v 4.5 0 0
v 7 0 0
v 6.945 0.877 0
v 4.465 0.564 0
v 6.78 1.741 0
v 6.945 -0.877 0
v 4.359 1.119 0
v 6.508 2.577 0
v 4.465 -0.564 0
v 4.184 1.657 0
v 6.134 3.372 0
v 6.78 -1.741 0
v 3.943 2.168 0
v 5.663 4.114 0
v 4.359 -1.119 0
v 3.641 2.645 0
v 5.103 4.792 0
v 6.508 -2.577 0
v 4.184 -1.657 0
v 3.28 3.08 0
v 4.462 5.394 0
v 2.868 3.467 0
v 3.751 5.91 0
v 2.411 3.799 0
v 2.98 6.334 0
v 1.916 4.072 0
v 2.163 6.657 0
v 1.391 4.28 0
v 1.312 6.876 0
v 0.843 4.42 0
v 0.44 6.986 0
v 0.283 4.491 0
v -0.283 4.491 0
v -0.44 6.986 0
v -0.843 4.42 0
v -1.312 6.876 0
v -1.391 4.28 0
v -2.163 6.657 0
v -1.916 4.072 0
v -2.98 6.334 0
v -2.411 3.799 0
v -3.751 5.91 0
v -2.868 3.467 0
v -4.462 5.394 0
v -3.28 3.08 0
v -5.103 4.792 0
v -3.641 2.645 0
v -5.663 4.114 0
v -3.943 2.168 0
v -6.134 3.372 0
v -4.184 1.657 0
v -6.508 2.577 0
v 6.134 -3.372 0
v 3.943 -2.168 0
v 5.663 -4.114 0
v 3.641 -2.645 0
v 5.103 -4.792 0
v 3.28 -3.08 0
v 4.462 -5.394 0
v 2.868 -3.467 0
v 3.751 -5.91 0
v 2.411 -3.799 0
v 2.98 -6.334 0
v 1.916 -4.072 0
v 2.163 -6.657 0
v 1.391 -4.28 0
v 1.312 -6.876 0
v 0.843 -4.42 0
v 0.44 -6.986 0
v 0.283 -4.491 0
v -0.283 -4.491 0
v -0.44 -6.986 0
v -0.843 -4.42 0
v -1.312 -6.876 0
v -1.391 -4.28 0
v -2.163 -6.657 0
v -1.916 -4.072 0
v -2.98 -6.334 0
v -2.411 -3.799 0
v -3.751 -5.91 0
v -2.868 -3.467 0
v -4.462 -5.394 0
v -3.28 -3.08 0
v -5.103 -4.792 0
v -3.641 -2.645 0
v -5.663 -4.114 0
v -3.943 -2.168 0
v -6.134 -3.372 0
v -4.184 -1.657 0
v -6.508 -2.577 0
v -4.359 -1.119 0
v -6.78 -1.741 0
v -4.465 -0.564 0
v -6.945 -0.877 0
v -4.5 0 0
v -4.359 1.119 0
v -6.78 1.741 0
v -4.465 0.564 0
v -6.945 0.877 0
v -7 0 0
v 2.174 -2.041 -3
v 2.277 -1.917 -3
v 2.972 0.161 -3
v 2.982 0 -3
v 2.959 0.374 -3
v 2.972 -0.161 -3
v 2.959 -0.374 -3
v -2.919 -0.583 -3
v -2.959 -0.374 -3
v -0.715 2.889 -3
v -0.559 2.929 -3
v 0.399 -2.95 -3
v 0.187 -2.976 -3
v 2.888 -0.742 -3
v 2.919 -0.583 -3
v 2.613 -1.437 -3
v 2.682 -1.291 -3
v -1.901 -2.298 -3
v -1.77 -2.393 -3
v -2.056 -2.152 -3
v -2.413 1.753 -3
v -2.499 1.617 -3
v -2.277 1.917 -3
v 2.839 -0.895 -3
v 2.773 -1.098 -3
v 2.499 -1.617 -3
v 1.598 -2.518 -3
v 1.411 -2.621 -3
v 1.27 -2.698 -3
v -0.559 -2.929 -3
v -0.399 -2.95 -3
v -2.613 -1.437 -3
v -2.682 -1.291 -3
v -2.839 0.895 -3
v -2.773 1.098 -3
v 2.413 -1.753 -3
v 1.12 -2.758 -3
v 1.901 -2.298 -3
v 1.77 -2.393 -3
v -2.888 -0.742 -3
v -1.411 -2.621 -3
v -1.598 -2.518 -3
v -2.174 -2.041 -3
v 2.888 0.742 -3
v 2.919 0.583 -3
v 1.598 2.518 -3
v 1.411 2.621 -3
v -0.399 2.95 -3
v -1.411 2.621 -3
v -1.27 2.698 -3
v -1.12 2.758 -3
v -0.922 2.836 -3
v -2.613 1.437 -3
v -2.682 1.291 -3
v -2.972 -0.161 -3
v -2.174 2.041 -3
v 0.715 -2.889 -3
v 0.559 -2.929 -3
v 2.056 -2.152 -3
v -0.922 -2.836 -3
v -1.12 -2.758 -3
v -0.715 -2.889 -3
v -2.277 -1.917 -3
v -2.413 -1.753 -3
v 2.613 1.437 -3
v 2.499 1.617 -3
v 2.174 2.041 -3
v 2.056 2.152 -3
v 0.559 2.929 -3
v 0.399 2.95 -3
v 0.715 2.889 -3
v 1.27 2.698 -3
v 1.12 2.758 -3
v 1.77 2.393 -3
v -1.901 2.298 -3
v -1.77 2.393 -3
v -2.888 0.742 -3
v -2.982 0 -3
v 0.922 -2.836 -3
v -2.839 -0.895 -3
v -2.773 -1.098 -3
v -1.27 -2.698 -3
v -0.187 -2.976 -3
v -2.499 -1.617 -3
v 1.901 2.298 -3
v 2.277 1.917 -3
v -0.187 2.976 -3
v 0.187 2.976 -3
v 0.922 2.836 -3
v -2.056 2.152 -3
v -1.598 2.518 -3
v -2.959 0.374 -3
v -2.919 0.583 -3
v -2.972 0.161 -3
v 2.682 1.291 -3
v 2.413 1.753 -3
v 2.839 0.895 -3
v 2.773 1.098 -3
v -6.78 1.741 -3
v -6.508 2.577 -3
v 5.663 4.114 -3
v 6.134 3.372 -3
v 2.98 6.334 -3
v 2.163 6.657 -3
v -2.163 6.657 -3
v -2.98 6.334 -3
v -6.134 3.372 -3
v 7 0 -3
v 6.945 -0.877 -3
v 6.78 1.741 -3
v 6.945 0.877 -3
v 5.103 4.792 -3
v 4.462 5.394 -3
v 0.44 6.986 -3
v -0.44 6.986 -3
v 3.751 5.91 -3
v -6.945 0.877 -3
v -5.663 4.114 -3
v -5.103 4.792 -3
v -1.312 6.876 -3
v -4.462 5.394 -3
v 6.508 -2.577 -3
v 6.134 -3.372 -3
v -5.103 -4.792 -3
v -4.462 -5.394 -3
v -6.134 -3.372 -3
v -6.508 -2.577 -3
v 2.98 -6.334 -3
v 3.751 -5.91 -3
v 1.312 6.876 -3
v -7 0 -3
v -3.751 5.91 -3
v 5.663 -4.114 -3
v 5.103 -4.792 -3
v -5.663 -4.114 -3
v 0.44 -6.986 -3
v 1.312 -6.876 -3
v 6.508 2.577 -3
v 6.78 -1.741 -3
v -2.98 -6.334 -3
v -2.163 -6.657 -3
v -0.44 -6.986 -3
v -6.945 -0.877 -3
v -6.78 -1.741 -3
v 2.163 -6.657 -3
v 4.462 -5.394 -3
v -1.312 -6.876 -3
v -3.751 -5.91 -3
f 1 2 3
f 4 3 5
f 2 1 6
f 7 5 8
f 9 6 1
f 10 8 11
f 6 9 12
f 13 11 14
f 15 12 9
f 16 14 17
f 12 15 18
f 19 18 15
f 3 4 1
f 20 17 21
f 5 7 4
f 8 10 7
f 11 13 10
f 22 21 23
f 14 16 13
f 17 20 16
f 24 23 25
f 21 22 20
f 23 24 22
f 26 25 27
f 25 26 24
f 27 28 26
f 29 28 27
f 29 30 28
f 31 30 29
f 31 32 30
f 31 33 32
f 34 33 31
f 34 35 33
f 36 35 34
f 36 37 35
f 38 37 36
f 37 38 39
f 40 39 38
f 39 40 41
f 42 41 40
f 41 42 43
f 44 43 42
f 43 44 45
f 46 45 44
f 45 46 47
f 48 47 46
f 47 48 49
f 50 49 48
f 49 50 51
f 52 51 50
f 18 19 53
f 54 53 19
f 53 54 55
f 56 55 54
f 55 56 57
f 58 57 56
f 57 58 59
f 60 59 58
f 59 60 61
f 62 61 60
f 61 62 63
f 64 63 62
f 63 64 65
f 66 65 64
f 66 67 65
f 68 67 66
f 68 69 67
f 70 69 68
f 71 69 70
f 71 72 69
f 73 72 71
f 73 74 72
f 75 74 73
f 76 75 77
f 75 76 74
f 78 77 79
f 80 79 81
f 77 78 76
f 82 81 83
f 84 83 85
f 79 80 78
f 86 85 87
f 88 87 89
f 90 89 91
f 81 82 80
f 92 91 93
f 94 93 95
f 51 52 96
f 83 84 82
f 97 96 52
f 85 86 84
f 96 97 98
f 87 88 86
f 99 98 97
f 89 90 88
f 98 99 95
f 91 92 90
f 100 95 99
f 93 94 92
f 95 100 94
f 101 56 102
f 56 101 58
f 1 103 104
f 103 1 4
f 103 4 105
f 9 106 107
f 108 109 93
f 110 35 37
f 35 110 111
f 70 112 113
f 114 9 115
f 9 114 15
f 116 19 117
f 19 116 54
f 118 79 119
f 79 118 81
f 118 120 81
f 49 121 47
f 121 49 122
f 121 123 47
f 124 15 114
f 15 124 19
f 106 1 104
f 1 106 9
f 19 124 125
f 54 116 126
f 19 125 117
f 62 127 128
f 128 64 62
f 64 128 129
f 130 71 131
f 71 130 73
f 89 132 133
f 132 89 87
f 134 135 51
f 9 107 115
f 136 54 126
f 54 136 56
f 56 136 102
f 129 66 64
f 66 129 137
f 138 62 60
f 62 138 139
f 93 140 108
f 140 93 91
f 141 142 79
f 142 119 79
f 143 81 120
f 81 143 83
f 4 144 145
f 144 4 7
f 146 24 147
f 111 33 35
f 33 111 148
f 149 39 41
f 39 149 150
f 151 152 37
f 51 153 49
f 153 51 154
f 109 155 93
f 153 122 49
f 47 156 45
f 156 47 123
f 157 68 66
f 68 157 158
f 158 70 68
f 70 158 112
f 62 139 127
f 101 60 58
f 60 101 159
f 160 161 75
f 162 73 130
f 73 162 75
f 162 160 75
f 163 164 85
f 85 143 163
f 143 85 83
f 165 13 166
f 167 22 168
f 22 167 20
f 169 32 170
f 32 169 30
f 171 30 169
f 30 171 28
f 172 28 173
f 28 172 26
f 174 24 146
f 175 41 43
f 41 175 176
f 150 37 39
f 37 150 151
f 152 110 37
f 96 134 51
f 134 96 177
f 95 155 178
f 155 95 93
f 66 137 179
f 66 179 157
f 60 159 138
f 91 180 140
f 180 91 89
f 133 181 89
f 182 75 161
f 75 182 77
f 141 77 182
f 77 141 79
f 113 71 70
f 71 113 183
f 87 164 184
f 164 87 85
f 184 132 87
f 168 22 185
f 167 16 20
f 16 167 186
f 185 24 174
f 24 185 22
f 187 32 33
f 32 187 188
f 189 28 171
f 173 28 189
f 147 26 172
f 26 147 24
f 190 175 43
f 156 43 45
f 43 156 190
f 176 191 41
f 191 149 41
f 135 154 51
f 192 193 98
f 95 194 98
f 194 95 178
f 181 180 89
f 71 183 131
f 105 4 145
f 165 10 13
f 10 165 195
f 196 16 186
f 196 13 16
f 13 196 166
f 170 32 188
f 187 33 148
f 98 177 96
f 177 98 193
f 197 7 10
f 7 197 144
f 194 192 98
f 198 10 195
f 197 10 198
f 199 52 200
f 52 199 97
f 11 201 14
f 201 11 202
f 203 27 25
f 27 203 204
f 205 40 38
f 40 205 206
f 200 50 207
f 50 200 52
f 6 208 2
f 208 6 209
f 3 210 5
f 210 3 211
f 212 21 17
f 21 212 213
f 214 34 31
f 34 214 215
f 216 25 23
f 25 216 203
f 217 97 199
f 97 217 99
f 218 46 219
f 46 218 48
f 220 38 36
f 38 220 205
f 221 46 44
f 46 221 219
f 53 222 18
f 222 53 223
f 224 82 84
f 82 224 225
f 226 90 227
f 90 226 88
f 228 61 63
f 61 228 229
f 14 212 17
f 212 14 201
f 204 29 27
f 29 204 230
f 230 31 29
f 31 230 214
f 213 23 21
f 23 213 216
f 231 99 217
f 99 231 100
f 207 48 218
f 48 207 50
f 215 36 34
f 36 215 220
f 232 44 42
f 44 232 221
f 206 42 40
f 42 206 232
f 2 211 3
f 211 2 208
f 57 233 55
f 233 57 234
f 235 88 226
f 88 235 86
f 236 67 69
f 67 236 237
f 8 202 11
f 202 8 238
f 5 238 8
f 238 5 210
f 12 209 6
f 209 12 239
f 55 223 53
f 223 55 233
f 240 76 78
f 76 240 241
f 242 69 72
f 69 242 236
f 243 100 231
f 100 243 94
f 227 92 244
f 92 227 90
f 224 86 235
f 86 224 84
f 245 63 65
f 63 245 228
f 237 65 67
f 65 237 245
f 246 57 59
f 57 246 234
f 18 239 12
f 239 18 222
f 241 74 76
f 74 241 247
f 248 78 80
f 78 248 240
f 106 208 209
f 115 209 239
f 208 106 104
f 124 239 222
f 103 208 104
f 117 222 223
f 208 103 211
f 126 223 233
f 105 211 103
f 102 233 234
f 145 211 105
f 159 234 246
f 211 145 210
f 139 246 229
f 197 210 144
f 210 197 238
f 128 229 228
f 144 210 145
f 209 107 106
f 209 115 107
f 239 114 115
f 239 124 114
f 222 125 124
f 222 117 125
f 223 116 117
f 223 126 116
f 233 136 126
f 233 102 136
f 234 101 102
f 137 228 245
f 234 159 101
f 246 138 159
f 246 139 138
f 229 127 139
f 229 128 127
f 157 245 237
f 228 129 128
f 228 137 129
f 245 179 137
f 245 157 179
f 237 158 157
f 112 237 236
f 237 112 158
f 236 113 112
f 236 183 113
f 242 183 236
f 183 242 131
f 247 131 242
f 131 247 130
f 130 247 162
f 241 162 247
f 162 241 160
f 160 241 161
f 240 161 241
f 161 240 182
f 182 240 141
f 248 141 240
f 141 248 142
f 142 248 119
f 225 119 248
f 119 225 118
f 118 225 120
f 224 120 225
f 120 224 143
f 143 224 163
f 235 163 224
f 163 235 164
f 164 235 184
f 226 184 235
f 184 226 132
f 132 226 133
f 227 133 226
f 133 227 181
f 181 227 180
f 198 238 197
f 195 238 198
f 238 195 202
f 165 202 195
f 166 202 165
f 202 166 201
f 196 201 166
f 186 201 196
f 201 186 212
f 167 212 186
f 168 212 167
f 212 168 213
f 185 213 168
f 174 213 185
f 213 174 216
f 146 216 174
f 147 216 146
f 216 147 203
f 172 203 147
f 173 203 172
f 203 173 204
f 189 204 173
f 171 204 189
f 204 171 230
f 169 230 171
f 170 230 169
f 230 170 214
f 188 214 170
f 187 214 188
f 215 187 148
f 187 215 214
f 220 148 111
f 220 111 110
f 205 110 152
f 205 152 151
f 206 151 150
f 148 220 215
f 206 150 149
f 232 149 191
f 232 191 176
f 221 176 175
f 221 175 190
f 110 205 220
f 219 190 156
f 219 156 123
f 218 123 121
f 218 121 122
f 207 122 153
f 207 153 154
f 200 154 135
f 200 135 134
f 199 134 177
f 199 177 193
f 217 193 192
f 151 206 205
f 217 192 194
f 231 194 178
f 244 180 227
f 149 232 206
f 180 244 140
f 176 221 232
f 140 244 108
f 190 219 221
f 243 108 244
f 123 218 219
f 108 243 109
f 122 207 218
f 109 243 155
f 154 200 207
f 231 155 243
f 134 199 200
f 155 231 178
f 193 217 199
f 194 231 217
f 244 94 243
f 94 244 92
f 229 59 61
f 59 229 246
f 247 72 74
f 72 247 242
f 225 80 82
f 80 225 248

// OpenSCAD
$fn = 50;


difference() {
	union() {
		translate(v = [0, 0, -3.0000000000]) {
			cylinder(h = 3, r = 7.0000000000);
		}
	}
	union() {
		translate(v = [0, 0, 0]) {
			rotate(a = [0, 0, 0]) {
				difference() {
					union() {
						#translate(v = [0, 0, -3.0000000000]) {
							cylinder(h = 3, r = 2.2500000000);
						}
						#translate(v = [0, 0, -4.2000000000]) {
							cylinder(h = 4.2000000000, r1 = 2.3750000000, r2 = 4.5000000000);
						}
						#translate(v = [0, 0, -3.0000000000]) {
							cylinder(h = 3, r = 2.3750000000);
						}
						#translate(v = [0, 0, -3.0000000000]) {
							cylinder(h = 3, r = 2.2500000000);
						}
					}
					union();
				}
			}
		}
	}
}
